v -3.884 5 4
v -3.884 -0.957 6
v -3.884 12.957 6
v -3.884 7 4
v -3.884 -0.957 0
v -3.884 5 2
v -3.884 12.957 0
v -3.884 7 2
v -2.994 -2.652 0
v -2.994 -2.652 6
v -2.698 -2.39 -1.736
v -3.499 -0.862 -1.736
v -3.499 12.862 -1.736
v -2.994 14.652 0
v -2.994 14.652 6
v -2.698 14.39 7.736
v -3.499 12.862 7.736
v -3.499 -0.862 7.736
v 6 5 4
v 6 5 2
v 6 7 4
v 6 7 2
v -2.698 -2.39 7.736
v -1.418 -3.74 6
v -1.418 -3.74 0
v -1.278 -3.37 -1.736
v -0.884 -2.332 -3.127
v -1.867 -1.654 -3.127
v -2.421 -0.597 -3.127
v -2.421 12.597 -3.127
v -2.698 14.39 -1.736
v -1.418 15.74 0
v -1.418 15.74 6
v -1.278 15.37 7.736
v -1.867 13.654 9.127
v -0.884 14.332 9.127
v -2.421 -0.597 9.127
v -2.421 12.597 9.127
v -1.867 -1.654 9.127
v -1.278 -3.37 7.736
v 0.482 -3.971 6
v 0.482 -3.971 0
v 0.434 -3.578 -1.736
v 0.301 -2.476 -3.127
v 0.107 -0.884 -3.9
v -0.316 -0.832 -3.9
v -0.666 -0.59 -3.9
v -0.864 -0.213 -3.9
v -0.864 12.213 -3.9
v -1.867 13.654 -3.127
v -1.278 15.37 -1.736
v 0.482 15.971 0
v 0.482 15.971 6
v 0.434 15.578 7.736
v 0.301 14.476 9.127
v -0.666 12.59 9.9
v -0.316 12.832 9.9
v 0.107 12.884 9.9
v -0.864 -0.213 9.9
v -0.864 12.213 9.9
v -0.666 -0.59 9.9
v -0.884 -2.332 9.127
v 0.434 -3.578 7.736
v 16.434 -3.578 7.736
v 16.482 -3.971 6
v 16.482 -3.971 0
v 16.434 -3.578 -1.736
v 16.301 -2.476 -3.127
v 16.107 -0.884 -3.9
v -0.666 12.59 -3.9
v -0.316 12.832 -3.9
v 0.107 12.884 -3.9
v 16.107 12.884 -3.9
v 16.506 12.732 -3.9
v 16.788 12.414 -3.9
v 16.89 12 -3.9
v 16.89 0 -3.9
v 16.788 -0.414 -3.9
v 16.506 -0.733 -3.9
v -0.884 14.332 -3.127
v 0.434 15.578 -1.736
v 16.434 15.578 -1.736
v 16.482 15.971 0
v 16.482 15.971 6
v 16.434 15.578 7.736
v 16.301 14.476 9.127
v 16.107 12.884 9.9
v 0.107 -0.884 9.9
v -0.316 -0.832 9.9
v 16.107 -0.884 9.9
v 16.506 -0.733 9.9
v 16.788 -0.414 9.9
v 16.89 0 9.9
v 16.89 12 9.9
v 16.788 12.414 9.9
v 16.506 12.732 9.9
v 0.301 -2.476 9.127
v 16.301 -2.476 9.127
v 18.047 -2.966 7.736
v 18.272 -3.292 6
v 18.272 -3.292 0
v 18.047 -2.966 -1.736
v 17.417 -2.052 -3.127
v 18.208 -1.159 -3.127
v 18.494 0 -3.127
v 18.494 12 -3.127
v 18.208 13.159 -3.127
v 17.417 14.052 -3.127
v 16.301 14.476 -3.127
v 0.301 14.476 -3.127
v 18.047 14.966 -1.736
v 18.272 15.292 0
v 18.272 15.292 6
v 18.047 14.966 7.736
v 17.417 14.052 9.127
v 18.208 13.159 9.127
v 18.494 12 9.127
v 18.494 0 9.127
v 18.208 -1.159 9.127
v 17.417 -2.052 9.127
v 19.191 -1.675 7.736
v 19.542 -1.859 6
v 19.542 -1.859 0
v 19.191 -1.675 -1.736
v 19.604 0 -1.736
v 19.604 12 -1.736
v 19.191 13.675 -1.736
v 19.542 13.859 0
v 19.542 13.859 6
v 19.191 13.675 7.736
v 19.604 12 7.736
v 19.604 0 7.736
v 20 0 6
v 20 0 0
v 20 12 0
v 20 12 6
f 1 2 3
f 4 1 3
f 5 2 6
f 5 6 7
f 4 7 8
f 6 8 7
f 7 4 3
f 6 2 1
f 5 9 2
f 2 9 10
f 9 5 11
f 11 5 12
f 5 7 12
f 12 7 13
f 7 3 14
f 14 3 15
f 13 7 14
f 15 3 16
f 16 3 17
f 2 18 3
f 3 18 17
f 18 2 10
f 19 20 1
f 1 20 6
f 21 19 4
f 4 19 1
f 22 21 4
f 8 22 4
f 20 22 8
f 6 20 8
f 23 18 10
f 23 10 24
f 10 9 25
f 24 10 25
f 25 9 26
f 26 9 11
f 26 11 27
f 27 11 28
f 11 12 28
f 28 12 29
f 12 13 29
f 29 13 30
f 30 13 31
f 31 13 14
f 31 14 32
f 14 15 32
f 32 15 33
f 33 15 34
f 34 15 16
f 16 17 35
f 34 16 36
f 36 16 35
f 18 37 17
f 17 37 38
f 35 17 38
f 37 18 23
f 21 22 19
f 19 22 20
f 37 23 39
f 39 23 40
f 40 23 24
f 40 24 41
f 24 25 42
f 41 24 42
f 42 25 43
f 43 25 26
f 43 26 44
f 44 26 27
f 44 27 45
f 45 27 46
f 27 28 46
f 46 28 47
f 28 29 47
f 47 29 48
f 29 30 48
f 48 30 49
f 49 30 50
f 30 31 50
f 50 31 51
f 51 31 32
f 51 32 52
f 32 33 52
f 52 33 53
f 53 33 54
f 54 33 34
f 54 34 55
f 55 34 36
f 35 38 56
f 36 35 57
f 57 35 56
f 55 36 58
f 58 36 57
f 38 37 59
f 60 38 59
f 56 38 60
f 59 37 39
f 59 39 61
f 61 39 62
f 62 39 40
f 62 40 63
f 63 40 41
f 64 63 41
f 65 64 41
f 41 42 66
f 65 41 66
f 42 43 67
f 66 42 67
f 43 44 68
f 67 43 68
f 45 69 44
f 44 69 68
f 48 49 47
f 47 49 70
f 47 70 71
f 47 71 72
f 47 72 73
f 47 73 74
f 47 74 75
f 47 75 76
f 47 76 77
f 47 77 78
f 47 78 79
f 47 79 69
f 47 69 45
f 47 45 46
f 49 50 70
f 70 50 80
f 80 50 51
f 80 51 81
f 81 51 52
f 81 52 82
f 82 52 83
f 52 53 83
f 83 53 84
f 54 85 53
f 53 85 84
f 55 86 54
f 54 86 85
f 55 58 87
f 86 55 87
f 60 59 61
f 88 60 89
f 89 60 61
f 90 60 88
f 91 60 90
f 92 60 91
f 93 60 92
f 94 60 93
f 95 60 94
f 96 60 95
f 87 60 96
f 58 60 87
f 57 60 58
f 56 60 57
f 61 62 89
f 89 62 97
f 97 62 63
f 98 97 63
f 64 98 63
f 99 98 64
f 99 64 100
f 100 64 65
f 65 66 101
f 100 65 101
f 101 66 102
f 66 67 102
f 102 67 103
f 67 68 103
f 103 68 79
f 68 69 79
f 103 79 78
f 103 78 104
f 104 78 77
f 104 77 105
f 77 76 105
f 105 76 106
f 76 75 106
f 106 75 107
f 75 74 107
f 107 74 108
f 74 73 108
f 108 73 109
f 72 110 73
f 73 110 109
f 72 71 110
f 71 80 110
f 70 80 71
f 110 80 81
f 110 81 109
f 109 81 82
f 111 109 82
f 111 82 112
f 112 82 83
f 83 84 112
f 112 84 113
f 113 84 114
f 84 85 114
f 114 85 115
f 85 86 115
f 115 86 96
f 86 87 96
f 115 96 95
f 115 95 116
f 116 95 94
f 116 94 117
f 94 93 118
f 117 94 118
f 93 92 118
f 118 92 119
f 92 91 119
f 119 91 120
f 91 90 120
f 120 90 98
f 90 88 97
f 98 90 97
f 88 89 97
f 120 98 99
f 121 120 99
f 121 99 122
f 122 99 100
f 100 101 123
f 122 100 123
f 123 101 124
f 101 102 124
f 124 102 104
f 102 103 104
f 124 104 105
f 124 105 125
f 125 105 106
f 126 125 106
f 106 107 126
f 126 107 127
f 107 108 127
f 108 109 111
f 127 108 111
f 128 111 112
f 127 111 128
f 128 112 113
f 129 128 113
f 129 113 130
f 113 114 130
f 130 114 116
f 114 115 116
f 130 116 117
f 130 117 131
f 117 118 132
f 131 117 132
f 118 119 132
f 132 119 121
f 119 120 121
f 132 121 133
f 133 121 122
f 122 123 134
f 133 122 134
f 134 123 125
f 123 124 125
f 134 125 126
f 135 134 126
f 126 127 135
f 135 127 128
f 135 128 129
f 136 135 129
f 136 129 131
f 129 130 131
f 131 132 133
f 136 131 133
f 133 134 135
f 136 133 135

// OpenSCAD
difference() {
 minkowski() {
  cube([16,12,6]);
  sphere(4);
 }
 translate([-4,5,2]) {
   cube([10,2,2]);
 }
}
